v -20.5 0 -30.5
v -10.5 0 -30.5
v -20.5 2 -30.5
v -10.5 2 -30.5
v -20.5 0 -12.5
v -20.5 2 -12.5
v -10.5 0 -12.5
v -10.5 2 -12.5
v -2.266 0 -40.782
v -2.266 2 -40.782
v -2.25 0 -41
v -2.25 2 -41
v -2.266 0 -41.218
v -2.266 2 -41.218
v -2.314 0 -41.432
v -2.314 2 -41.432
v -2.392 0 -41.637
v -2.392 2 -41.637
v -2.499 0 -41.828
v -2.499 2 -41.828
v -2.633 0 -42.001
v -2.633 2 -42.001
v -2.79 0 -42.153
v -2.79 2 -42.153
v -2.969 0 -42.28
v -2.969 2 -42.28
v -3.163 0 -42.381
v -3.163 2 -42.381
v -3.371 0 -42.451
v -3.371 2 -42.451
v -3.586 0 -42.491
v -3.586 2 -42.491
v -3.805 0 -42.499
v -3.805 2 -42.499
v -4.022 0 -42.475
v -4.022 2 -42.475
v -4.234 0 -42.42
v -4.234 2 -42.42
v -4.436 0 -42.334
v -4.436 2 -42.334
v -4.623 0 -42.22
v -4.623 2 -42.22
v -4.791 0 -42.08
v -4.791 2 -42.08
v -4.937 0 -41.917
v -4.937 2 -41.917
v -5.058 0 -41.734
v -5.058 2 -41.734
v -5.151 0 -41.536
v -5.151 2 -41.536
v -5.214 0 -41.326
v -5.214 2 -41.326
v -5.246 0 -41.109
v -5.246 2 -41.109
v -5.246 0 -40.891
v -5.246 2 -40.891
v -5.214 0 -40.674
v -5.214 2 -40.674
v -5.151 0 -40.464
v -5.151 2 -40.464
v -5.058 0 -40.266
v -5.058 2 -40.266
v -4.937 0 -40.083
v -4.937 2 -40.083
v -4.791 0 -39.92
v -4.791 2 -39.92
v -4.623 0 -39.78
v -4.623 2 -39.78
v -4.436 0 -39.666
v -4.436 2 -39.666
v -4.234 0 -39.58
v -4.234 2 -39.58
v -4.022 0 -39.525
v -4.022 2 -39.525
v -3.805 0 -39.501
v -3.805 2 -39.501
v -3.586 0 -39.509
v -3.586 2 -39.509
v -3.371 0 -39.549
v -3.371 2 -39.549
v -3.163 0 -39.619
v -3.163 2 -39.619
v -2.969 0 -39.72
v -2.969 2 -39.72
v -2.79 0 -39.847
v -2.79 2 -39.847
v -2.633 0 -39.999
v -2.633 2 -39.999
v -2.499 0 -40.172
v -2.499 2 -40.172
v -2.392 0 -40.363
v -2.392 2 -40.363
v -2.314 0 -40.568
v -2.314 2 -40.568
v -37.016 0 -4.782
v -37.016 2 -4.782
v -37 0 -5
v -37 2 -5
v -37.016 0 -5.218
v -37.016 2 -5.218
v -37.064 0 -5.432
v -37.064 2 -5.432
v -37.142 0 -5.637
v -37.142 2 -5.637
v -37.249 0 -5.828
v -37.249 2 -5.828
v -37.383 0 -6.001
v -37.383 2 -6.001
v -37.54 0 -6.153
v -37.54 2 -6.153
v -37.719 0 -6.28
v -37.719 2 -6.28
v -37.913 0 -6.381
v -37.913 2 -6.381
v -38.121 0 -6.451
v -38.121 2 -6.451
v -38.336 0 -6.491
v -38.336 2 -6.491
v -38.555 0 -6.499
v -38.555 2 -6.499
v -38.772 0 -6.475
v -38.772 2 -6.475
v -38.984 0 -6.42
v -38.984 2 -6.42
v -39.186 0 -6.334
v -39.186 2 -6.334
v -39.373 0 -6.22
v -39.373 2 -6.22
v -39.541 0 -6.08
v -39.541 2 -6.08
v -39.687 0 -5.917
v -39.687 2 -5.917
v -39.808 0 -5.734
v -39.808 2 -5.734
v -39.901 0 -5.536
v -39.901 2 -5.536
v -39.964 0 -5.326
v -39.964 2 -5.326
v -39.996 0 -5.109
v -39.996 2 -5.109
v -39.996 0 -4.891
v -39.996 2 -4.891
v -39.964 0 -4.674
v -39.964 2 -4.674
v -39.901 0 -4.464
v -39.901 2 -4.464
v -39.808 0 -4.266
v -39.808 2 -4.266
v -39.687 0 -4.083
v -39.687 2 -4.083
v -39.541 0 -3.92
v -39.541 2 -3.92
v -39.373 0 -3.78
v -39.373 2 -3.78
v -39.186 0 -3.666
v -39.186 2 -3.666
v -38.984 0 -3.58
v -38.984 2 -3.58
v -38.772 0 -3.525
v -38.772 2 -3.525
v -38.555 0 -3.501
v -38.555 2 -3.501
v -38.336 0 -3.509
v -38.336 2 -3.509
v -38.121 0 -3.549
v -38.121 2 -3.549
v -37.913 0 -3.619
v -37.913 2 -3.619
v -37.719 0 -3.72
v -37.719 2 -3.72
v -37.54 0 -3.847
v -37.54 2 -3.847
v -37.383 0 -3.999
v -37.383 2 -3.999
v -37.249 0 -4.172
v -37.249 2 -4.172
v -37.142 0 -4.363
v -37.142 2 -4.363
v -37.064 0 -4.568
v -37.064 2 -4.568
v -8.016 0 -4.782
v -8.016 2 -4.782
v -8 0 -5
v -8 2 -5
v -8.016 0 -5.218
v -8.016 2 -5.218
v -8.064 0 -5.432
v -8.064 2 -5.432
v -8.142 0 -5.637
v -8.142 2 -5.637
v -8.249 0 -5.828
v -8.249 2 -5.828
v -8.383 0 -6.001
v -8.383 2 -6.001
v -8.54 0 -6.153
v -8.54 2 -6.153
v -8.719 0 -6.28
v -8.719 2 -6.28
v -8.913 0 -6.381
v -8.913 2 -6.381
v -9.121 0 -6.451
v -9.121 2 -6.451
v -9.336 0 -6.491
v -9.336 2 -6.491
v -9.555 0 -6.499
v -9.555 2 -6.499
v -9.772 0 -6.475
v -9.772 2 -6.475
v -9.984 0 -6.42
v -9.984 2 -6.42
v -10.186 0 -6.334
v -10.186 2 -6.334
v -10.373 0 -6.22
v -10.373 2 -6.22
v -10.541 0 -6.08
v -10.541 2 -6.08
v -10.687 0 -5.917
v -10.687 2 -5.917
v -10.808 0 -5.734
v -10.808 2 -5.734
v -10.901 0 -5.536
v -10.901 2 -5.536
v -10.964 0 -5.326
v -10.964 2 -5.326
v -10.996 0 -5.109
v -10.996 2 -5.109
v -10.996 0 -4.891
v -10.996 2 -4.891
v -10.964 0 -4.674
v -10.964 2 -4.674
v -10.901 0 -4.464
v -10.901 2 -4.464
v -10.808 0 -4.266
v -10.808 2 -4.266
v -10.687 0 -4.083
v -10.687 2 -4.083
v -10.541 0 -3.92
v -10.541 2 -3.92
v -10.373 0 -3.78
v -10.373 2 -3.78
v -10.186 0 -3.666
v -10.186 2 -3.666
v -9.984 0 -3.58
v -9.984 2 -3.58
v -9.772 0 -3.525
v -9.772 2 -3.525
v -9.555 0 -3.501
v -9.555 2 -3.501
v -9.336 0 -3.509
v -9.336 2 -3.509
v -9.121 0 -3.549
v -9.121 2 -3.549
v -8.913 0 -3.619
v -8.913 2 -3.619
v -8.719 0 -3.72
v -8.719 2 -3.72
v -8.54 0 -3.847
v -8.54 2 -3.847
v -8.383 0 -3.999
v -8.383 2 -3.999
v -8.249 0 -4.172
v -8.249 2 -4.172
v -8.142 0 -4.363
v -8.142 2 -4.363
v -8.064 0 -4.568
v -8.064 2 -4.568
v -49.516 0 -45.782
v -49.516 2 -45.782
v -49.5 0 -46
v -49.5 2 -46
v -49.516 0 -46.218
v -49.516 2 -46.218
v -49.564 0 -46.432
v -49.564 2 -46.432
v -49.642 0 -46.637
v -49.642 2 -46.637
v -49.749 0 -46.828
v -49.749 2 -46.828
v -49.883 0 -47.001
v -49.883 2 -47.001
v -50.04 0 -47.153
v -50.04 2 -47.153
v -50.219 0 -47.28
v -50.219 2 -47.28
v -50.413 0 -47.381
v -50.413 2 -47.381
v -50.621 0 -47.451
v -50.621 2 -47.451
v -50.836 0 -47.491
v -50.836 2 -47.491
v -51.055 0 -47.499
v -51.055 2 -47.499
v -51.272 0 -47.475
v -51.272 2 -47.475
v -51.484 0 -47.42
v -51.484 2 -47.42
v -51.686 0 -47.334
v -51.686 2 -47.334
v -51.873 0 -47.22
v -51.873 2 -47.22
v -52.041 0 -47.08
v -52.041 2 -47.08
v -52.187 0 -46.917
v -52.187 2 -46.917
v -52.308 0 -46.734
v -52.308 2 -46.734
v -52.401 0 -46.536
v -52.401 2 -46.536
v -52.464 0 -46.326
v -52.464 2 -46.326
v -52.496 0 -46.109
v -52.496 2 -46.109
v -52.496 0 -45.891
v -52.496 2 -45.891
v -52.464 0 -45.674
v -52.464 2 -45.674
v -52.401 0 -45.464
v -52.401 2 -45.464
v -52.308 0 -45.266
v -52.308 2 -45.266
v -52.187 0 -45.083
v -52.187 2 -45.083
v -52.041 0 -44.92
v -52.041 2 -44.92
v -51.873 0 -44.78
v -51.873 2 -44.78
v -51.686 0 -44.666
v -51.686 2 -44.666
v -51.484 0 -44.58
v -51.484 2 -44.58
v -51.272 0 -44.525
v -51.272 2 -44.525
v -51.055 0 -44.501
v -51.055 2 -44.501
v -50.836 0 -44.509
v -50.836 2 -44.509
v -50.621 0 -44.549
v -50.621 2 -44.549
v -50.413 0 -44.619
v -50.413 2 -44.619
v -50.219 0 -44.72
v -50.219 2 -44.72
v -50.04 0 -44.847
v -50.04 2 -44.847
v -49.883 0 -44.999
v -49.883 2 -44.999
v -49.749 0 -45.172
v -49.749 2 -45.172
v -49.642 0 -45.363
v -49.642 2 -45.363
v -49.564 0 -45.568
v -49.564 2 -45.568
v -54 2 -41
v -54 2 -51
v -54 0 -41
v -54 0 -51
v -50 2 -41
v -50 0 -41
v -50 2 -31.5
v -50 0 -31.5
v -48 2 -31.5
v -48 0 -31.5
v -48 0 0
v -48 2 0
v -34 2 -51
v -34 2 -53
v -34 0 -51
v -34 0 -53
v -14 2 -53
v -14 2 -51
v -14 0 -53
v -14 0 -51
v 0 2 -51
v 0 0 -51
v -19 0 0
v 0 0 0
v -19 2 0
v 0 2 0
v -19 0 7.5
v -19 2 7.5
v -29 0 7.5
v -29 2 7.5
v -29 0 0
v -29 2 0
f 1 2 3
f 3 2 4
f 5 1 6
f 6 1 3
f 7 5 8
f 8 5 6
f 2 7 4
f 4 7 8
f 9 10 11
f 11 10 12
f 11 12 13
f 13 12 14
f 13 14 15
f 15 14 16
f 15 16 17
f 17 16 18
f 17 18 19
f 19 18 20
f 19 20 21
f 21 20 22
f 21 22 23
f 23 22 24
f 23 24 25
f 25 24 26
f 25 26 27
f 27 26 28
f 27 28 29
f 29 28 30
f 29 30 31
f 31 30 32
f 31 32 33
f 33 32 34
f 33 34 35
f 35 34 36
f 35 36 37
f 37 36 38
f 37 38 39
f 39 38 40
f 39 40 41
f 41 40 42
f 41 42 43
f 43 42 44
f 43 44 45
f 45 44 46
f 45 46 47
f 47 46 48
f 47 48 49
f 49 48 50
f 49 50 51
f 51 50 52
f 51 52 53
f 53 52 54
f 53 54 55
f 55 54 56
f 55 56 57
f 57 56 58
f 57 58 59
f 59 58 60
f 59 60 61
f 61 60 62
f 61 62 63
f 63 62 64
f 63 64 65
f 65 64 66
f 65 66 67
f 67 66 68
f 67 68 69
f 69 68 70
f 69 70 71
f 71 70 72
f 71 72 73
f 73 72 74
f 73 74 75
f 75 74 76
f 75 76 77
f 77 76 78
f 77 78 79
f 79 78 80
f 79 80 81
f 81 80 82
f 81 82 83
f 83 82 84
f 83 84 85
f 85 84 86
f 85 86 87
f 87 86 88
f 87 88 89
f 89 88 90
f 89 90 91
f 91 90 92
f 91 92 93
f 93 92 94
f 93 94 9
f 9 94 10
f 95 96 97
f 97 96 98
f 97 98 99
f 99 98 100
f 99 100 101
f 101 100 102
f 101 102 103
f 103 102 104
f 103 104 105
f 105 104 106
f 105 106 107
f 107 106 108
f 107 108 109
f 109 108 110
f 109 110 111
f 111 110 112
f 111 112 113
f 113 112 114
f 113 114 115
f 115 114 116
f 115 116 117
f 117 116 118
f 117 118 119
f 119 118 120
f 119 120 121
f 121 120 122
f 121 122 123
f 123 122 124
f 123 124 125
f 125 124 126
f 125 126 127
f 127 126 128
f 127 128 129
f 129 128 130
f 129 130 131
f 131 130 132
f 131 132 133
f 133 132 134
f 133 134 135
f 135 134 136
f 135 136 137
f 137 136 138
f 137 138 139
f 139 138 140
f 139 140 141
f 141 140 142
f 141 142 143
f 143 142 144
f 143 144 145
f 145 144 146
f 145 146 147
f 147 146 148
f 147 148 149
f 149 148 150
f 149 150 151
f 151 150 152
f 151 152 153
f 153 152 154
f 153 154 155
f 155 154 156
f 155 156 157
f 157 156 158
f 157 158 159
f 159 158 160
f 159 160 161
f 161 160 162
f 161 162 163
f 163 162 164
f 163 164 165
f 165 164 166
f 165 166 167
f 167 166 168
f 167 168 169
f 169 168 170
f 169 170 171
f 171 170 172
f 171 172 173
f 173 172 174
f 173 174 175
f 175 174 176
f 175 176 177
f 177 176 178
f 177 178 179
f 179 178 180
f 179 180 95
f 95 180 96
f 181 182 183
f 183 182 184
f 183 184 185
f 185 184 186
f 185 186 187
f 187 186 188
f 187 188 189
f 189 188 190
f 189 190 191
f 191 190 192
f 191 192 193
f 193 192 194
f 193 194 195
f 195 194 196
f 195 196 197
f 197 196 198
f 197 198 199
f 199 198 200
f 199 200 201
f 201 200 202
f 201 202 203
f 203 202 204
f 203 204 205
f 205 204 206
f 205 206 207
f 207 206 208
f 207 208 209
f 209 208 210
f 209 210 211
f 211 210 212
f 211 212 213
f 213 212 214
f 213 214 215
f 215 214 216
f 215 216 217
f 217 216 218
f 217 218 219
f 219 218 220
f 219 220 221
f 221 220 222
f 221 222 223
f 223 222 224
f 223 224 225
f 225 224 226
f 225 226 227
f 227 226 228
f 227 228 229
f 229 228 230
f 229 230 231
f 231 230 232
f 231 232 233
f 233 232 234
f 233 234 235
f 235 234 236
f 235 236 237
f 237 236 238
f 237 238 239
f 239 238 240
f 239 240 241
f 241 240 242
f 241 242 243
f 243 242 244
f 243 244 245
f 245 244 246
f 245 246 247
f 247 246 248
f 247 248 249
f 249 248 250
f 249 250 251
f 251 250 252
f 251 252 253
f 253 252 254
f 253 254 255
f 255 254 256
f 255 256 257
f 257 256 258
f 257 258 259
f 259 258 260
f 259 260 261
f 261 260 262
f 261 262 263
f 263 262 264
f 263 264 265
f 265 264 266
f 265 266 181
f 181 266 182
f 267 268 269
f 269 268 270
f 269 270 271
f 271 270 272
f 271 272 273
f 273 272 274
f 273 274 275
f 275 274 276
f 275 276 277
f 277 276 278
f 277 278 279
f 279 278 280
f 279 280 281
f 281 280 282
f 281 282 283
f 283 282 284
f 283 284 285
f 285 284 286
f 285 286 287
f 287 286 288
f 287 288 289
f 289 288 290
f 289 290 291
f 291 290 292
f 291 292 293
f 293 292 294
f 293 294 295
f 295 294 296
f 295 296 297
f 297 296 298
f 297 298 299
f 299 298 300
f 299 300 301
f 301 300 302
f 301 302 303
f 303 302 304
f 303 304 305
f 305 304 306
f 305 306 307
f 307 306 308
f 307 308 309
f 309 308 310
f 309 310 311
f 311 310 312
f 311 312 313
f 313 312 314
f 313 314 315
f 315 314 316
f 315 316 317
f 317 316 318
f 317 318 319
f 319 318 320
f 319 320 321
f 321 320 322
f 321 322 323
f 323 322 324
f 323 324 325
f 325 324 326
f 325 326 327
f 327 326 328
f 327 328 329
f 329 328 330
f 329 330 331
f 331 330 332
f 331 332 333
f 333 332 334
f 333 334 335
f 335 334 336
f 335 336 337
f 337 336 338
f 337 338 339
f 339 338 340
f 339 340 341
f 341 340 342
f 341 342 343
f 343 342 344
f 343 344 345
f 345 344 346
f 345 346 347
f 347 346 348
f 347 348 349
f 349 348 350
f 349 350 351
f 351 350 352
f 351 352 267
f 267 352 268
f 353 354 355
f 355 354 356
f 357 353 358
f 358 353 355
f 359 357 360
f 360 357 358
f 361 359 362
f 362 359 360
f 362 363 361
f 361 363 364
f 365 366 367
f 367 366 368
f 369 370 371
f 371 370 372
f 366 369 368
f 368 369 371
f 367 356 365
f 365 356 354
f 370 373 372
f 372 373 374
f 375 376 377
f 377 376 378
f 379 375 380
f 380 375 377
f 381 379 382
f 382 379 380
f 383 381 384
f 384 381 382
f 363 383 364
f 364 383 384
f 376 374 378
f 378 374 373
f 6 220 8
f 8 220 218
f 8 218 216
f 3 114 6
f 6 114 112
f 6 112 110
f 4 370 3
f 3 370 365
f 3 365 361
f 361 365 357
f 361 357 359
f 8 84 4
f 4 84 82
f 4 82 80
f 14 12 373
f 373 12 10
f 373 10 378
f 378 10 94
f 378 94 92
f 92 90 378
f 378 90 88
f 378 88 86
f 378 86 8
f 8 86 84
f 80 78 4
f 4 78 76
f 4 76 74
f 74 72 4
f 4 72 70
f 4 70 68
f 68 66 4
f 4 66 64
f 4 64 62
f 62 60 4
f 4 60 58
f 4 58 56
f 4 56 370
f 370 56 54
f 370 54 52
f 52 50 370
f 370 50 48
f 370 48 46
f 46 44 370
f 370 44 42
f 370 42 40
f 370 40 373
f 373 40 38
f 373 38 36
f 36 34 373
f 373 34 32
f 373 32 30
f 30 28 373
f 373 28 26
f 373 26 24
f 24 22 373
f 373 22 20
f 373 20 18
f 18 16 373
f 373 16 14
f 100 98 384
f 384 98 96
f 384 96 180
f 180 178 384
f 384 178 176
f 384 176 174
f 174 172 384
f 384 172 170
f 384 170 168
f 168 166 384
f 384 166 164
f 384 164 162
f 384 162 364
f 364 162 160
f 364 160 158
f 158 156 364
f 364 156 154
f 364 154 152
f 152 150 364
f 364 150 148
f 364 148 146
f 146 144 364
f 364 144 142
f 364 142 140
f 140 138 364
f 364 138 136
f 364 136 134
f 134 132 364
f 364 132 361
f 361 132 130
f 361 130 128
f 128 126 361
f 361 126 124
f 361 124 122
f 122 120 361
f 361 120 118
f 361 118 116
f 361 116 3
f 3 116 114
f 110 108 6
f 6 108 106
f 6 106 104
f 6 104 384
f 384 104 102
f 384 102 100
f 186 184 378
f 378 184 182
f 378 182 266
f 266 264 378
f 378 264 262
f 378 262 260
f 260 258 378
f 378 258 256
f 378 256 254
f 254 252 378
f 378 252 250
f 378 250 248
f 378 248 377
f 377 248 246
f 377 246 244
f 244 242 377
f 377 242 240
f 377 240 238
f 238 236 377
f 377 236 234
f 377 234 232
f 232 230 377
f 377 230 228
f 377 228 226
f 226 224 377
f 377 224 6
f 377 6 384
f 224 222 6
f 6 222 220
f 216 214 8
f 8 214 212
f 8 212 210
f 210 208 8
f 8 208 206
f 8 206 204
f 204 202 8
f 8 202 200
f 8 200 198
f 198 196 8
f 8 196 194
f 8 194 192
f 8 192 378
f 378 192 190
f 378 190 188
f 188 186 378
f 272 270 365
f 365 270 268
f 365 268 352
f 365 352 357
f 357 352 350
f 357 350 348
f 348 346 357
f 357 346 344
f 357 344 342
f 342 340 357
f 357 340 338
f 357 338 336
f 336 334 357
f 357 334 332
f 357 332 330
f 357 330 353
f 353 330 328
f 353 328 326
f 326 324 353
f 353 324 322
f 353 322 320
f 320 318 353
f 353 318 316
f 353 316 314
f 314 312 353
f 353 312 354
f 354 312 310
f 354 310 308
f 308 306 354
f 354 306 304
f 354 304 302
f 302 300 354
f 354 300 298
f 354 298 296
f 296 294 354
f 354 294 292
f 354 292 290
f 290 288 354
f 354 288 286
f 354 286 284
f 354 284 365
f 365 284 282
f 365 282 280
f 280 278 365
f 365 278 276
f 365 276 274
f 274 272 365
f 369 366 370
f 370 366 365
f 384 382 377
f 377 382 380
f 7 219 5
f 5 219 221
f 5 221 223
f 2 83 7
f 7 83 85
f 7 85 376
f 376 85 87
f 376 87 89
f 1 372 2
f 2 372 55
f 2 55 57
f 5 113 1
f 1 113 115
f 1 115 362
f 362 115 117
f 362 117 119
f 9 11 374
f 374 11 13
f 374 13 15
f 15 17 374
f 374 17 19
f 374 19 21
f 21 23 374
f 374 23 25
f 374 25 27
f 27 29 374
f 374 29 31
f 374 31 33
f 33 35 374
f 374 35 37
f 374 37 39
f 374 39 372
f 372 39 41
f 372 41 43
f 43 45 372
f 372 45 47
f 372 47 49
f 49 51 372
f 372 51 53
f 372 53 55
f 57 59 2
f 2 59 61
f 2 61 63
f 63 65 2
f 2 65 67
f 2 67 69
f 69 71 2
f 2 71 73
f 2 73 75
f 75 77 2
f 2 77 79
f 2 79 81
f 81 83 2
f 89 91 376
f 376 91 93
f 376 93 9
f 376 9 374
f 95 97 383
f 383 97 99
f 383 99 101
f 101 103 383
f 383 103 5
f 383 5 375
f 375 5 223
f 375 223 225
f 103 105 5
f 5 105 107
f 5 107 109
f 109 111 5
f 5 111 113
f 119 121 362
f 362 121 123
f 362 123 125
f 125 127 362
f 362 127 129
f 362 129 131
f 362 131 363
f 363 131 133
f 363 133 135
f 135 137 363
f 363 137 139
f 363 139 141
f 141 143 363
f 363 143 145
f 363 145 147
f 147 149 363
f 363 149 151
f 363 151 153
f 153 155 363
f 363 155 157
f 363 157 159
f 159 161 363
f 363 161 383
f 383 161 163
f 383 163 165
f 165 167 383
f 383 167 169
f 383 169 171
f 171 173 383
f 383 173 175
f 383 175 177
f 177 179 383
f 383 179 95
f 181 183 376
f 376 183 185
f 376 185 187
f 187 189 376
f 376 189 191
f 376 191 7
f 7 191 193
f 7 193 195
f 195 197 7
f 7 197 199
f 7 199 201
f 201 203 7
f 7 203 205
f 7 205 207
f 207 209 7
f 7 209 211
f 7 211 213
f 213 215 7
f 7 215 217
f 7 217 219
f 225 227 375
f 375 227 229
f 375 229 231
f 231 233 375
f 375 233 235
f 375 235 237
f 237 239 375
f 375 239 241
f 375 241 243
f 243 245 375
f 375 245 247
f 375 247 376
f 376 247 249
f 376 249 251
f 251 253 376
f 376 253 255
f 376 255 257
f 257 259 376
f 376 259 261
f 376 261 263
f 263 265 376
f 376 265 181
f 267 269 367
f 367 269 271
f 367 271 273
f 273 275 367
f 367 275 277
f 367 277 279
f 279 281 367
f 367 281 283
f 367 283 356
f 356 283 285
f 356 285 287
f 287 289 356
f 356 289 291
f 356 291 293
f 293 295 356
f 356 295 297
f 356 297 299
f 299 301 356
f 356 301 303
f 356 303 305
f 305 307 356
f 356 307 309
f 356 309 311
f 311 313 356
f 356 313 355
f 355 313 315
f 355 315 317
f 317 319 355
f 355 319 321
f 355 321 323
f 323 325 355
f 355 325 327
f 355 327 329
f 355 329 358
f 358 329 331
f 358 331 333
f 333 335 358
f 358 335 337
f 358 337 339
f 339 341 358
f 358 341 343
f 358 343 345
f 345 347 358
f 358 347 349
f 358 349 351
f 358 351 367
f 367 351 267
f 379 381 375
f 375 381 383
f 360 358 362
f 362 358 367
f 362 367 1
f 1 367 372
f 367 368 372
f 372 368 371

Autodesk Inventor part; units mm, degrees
ref_plane "YZ Plane" through (0, 0, 0) normal (1, 0, 0) x (0, 1, 0)
ref_plane "XZ Plane" through (0, 0, 0) normal (0, 1, 0) x (-1, 0, 0)
ref_plane "XY Plane" through (0, 0, 0) normal (0, 0, 1) x (1, 0, 0)
sketch "Boceto1" plane through (0, 0, 0) normal (0, 1, 0) x (-1, 0, 0)
  line L0 (48, 0) -> (48, -51)
  line L1 (48, -51) -> (0, -51)
  line L2 (0, -51) -> (0, 0)
  line L3 (24, 7.5) -> (29, 7.5)
  line L4 (29, 7.5) -> (29, 0)
  line L5 (24, 7.5) -> (19, 7.5)
  line L6 (19, 7.5) -> (19, 0)
  line L7 (24, 7.5) -> (24, -1.25)
  circle A0 centre (24, -1.25) radius 1.5
  line L8 (29, 0) -> (48, 0)
  line L9 (19, 0) -> (0, 0)
  dimension "d0" = 48
  dimension "d1" = 51
  dimension "d3" = 5
  dimension "d4" = 5
  dimension "d5" = 8.75
  dimension "d6" = 3
extrude "Extrusión1" add sketch "Boceto1" along normal blind 2
ref_plane "Plano de trabajo1" through (-48, -25, -47.5) normal (0, -1, 0) x (1, 0, 0)
sketch "Boceto4" plane through (0, 2, 0) normal (0, 1, 0) x (1, 0, 0)
  line L0 (0, 51) -> (-48, 51) projected
  line L1 (-24, 51) -> (-24, 53)
  line L2 (-24, 53) -> (-34, 53)
  line L3 (-34, 53) -> (-34, 51)
  line L4 (-34, 51) -> (-14, 51)
  line L5 (-14, 51) -> (-14, 53)
  line L6 (-14, 53) -> (-24, 53)
  point P0 (0, 0)
  dimension "d18" = 2
  dimension "d19" = 10
  dimension "d20" = 20
extrude "Extrusión4" add sketch "Boceto4" against normal blind 2
sketch "Boceto6" plane through (0, 2, 0) normal (0, 1, 0) x (1, 0, 0)
  line L0 (-48, 47.5) -> (-48, 31.5) projected
  line L1 (-48, 47.5) -> (-18.5, 47.5)
  line L2 (-18.5, 47.5) -> (-18.5, 26.5)
  line L3 (-18.5, 26.5) -> (-18.5, 16.5)
  line L4 (-18.5, 16.5) -> (-12.5, 16.5)
  line L5 (-12.5, 16.5) -> (-12.5, 26.5)
  line L6 (-12.5, 26.5) -> (-18.5, 26.5)
  point P0 (0, 0)
  dimension "d26" = 29.5
  dimension "d27" = 21
  dimension "d28" = 10
  dimension "d29" = 6
extrude "Extrusión6" cut sketch "Boceto6" against normal blind 2
sketch "Boceto7" plane through (0, 2, 0) normal (0, 1, 0) x (1, 0, 0)
  circle A0 centre (-24, 1.25) radius 1.5 projected
  circle A1 centre (-24, 1.25) radius 1.5
  point P0 (0, 0)
extrude "Extrusión7" add sketch "Boceto7" against normal blind 2
sketch "Boceto8" plane through (0, 2, 0) normal (0, 1, 0) x (1, 0, 0)
  line L0 (-48, 51) -> (-48, 0) projected
  line L1 (-48, 51) -> (-48, 31.5)
  line L2 (-48, 31.5) -> (-50, 31.5)
  line L3 (-50, 31.5) -> (-50, 41)
  line L4 (-50, 41) -> (-54, 41)
  line L5 (-54, 41) -> (-54, 51)
  line L6 (-54, 51) -> (-48, 51)
  point P0 (0, 0)
  dimension "d34" = 19.5
  dimension "d35" = 2
  dimension "d36" = 9.5
  dimension "d37" = 4
extrude "Extrusión8" add sketch "Boceto8" against normal blind 2
sketch "Boceto9" plane through (0, 2, 0) normal (0, 1, 0) x (1, 0, 0)
  line L0 (-48, 0) -> (-29, 0) projected
  line L1 (-48, 0) -> (-48, 5)
  line L2 (-48, 31.5) -> (-48, 0) projected
  line L3 (-48, 5) -> (-38.5, 5)
  line L4 (-48, 5) -> (-9.5, 5)
  circle A0 centre (-38.5, 5) radius 1.5
  circle A1 centre (-9.5, 5) radius 1.5
  line L5 (0, 51) -> (-14, 51) projected
  line L6 (0, 51) -> (0, 41)
  line L7 (0, 0) -> (0, 51) projected
  line L8 (0, 41) -> (-3.75, 41)
  circle A2 centre (-3.75, 41) radius 1.5
  line L9 (-34, 51) -> (-54, 51) projected
  line L10 (-54, 51) -> (-51, 51)
  line L11 (-51, 51) -> (-51, 46)
  circle A3 centre (-51, 46) radius 1.5
  dimension "d40" = 5
  dimension "d41" = 9.5
  dimension "d42" = 38.5
  dimension "d43" = 3
  dimension "d44" = 3
  dimension "d45" = 10
  dimension "d46" = 3.75
  dimension "d47" = 3
  dimension "d48" = 3
  dimension "d49" = 3
extrude "Extrusión9" cut sketch "Boceto9" against normal blind 2
sketch "Boceto10" plane through (0, 2, 0) normal (0, 1, 0) x (1, 0, 0)
  line L0 (-18.5, 16.5) -> (-18.5, 26.5) projected
  line L1 (-20.5, 16.5) -> (-20.5, 12.5)
  line L2 (-20.5, 12.5) -> (-12.5, 12.5)
  line L3 (-12.5, 12.5) -> (-10.5, 12.5)
  line L4 (-10.5, 12.5) -> (-10.5, 26.5)
  line L5 (-10.5, 26.5) -> (-10.5, 30.5)
  line L6 (-10.5, 30.5) -> (-18.5, 30.5)
  line L7 (-18.5, 30.5) -> (-20.5, 30.5)
  line L8 (-20.5, 16.5) -> (-20.5, 30.5)
  point P0 (0, 0)
  dimension "d52" = 2
  dimension "d53" = 4
  dimension "d54" = 2
  dimension "d55" = 4
extrude "Extrusión10" cut sketch "Boceto10" against normal blind 10
properties part number "arm_2_case"
